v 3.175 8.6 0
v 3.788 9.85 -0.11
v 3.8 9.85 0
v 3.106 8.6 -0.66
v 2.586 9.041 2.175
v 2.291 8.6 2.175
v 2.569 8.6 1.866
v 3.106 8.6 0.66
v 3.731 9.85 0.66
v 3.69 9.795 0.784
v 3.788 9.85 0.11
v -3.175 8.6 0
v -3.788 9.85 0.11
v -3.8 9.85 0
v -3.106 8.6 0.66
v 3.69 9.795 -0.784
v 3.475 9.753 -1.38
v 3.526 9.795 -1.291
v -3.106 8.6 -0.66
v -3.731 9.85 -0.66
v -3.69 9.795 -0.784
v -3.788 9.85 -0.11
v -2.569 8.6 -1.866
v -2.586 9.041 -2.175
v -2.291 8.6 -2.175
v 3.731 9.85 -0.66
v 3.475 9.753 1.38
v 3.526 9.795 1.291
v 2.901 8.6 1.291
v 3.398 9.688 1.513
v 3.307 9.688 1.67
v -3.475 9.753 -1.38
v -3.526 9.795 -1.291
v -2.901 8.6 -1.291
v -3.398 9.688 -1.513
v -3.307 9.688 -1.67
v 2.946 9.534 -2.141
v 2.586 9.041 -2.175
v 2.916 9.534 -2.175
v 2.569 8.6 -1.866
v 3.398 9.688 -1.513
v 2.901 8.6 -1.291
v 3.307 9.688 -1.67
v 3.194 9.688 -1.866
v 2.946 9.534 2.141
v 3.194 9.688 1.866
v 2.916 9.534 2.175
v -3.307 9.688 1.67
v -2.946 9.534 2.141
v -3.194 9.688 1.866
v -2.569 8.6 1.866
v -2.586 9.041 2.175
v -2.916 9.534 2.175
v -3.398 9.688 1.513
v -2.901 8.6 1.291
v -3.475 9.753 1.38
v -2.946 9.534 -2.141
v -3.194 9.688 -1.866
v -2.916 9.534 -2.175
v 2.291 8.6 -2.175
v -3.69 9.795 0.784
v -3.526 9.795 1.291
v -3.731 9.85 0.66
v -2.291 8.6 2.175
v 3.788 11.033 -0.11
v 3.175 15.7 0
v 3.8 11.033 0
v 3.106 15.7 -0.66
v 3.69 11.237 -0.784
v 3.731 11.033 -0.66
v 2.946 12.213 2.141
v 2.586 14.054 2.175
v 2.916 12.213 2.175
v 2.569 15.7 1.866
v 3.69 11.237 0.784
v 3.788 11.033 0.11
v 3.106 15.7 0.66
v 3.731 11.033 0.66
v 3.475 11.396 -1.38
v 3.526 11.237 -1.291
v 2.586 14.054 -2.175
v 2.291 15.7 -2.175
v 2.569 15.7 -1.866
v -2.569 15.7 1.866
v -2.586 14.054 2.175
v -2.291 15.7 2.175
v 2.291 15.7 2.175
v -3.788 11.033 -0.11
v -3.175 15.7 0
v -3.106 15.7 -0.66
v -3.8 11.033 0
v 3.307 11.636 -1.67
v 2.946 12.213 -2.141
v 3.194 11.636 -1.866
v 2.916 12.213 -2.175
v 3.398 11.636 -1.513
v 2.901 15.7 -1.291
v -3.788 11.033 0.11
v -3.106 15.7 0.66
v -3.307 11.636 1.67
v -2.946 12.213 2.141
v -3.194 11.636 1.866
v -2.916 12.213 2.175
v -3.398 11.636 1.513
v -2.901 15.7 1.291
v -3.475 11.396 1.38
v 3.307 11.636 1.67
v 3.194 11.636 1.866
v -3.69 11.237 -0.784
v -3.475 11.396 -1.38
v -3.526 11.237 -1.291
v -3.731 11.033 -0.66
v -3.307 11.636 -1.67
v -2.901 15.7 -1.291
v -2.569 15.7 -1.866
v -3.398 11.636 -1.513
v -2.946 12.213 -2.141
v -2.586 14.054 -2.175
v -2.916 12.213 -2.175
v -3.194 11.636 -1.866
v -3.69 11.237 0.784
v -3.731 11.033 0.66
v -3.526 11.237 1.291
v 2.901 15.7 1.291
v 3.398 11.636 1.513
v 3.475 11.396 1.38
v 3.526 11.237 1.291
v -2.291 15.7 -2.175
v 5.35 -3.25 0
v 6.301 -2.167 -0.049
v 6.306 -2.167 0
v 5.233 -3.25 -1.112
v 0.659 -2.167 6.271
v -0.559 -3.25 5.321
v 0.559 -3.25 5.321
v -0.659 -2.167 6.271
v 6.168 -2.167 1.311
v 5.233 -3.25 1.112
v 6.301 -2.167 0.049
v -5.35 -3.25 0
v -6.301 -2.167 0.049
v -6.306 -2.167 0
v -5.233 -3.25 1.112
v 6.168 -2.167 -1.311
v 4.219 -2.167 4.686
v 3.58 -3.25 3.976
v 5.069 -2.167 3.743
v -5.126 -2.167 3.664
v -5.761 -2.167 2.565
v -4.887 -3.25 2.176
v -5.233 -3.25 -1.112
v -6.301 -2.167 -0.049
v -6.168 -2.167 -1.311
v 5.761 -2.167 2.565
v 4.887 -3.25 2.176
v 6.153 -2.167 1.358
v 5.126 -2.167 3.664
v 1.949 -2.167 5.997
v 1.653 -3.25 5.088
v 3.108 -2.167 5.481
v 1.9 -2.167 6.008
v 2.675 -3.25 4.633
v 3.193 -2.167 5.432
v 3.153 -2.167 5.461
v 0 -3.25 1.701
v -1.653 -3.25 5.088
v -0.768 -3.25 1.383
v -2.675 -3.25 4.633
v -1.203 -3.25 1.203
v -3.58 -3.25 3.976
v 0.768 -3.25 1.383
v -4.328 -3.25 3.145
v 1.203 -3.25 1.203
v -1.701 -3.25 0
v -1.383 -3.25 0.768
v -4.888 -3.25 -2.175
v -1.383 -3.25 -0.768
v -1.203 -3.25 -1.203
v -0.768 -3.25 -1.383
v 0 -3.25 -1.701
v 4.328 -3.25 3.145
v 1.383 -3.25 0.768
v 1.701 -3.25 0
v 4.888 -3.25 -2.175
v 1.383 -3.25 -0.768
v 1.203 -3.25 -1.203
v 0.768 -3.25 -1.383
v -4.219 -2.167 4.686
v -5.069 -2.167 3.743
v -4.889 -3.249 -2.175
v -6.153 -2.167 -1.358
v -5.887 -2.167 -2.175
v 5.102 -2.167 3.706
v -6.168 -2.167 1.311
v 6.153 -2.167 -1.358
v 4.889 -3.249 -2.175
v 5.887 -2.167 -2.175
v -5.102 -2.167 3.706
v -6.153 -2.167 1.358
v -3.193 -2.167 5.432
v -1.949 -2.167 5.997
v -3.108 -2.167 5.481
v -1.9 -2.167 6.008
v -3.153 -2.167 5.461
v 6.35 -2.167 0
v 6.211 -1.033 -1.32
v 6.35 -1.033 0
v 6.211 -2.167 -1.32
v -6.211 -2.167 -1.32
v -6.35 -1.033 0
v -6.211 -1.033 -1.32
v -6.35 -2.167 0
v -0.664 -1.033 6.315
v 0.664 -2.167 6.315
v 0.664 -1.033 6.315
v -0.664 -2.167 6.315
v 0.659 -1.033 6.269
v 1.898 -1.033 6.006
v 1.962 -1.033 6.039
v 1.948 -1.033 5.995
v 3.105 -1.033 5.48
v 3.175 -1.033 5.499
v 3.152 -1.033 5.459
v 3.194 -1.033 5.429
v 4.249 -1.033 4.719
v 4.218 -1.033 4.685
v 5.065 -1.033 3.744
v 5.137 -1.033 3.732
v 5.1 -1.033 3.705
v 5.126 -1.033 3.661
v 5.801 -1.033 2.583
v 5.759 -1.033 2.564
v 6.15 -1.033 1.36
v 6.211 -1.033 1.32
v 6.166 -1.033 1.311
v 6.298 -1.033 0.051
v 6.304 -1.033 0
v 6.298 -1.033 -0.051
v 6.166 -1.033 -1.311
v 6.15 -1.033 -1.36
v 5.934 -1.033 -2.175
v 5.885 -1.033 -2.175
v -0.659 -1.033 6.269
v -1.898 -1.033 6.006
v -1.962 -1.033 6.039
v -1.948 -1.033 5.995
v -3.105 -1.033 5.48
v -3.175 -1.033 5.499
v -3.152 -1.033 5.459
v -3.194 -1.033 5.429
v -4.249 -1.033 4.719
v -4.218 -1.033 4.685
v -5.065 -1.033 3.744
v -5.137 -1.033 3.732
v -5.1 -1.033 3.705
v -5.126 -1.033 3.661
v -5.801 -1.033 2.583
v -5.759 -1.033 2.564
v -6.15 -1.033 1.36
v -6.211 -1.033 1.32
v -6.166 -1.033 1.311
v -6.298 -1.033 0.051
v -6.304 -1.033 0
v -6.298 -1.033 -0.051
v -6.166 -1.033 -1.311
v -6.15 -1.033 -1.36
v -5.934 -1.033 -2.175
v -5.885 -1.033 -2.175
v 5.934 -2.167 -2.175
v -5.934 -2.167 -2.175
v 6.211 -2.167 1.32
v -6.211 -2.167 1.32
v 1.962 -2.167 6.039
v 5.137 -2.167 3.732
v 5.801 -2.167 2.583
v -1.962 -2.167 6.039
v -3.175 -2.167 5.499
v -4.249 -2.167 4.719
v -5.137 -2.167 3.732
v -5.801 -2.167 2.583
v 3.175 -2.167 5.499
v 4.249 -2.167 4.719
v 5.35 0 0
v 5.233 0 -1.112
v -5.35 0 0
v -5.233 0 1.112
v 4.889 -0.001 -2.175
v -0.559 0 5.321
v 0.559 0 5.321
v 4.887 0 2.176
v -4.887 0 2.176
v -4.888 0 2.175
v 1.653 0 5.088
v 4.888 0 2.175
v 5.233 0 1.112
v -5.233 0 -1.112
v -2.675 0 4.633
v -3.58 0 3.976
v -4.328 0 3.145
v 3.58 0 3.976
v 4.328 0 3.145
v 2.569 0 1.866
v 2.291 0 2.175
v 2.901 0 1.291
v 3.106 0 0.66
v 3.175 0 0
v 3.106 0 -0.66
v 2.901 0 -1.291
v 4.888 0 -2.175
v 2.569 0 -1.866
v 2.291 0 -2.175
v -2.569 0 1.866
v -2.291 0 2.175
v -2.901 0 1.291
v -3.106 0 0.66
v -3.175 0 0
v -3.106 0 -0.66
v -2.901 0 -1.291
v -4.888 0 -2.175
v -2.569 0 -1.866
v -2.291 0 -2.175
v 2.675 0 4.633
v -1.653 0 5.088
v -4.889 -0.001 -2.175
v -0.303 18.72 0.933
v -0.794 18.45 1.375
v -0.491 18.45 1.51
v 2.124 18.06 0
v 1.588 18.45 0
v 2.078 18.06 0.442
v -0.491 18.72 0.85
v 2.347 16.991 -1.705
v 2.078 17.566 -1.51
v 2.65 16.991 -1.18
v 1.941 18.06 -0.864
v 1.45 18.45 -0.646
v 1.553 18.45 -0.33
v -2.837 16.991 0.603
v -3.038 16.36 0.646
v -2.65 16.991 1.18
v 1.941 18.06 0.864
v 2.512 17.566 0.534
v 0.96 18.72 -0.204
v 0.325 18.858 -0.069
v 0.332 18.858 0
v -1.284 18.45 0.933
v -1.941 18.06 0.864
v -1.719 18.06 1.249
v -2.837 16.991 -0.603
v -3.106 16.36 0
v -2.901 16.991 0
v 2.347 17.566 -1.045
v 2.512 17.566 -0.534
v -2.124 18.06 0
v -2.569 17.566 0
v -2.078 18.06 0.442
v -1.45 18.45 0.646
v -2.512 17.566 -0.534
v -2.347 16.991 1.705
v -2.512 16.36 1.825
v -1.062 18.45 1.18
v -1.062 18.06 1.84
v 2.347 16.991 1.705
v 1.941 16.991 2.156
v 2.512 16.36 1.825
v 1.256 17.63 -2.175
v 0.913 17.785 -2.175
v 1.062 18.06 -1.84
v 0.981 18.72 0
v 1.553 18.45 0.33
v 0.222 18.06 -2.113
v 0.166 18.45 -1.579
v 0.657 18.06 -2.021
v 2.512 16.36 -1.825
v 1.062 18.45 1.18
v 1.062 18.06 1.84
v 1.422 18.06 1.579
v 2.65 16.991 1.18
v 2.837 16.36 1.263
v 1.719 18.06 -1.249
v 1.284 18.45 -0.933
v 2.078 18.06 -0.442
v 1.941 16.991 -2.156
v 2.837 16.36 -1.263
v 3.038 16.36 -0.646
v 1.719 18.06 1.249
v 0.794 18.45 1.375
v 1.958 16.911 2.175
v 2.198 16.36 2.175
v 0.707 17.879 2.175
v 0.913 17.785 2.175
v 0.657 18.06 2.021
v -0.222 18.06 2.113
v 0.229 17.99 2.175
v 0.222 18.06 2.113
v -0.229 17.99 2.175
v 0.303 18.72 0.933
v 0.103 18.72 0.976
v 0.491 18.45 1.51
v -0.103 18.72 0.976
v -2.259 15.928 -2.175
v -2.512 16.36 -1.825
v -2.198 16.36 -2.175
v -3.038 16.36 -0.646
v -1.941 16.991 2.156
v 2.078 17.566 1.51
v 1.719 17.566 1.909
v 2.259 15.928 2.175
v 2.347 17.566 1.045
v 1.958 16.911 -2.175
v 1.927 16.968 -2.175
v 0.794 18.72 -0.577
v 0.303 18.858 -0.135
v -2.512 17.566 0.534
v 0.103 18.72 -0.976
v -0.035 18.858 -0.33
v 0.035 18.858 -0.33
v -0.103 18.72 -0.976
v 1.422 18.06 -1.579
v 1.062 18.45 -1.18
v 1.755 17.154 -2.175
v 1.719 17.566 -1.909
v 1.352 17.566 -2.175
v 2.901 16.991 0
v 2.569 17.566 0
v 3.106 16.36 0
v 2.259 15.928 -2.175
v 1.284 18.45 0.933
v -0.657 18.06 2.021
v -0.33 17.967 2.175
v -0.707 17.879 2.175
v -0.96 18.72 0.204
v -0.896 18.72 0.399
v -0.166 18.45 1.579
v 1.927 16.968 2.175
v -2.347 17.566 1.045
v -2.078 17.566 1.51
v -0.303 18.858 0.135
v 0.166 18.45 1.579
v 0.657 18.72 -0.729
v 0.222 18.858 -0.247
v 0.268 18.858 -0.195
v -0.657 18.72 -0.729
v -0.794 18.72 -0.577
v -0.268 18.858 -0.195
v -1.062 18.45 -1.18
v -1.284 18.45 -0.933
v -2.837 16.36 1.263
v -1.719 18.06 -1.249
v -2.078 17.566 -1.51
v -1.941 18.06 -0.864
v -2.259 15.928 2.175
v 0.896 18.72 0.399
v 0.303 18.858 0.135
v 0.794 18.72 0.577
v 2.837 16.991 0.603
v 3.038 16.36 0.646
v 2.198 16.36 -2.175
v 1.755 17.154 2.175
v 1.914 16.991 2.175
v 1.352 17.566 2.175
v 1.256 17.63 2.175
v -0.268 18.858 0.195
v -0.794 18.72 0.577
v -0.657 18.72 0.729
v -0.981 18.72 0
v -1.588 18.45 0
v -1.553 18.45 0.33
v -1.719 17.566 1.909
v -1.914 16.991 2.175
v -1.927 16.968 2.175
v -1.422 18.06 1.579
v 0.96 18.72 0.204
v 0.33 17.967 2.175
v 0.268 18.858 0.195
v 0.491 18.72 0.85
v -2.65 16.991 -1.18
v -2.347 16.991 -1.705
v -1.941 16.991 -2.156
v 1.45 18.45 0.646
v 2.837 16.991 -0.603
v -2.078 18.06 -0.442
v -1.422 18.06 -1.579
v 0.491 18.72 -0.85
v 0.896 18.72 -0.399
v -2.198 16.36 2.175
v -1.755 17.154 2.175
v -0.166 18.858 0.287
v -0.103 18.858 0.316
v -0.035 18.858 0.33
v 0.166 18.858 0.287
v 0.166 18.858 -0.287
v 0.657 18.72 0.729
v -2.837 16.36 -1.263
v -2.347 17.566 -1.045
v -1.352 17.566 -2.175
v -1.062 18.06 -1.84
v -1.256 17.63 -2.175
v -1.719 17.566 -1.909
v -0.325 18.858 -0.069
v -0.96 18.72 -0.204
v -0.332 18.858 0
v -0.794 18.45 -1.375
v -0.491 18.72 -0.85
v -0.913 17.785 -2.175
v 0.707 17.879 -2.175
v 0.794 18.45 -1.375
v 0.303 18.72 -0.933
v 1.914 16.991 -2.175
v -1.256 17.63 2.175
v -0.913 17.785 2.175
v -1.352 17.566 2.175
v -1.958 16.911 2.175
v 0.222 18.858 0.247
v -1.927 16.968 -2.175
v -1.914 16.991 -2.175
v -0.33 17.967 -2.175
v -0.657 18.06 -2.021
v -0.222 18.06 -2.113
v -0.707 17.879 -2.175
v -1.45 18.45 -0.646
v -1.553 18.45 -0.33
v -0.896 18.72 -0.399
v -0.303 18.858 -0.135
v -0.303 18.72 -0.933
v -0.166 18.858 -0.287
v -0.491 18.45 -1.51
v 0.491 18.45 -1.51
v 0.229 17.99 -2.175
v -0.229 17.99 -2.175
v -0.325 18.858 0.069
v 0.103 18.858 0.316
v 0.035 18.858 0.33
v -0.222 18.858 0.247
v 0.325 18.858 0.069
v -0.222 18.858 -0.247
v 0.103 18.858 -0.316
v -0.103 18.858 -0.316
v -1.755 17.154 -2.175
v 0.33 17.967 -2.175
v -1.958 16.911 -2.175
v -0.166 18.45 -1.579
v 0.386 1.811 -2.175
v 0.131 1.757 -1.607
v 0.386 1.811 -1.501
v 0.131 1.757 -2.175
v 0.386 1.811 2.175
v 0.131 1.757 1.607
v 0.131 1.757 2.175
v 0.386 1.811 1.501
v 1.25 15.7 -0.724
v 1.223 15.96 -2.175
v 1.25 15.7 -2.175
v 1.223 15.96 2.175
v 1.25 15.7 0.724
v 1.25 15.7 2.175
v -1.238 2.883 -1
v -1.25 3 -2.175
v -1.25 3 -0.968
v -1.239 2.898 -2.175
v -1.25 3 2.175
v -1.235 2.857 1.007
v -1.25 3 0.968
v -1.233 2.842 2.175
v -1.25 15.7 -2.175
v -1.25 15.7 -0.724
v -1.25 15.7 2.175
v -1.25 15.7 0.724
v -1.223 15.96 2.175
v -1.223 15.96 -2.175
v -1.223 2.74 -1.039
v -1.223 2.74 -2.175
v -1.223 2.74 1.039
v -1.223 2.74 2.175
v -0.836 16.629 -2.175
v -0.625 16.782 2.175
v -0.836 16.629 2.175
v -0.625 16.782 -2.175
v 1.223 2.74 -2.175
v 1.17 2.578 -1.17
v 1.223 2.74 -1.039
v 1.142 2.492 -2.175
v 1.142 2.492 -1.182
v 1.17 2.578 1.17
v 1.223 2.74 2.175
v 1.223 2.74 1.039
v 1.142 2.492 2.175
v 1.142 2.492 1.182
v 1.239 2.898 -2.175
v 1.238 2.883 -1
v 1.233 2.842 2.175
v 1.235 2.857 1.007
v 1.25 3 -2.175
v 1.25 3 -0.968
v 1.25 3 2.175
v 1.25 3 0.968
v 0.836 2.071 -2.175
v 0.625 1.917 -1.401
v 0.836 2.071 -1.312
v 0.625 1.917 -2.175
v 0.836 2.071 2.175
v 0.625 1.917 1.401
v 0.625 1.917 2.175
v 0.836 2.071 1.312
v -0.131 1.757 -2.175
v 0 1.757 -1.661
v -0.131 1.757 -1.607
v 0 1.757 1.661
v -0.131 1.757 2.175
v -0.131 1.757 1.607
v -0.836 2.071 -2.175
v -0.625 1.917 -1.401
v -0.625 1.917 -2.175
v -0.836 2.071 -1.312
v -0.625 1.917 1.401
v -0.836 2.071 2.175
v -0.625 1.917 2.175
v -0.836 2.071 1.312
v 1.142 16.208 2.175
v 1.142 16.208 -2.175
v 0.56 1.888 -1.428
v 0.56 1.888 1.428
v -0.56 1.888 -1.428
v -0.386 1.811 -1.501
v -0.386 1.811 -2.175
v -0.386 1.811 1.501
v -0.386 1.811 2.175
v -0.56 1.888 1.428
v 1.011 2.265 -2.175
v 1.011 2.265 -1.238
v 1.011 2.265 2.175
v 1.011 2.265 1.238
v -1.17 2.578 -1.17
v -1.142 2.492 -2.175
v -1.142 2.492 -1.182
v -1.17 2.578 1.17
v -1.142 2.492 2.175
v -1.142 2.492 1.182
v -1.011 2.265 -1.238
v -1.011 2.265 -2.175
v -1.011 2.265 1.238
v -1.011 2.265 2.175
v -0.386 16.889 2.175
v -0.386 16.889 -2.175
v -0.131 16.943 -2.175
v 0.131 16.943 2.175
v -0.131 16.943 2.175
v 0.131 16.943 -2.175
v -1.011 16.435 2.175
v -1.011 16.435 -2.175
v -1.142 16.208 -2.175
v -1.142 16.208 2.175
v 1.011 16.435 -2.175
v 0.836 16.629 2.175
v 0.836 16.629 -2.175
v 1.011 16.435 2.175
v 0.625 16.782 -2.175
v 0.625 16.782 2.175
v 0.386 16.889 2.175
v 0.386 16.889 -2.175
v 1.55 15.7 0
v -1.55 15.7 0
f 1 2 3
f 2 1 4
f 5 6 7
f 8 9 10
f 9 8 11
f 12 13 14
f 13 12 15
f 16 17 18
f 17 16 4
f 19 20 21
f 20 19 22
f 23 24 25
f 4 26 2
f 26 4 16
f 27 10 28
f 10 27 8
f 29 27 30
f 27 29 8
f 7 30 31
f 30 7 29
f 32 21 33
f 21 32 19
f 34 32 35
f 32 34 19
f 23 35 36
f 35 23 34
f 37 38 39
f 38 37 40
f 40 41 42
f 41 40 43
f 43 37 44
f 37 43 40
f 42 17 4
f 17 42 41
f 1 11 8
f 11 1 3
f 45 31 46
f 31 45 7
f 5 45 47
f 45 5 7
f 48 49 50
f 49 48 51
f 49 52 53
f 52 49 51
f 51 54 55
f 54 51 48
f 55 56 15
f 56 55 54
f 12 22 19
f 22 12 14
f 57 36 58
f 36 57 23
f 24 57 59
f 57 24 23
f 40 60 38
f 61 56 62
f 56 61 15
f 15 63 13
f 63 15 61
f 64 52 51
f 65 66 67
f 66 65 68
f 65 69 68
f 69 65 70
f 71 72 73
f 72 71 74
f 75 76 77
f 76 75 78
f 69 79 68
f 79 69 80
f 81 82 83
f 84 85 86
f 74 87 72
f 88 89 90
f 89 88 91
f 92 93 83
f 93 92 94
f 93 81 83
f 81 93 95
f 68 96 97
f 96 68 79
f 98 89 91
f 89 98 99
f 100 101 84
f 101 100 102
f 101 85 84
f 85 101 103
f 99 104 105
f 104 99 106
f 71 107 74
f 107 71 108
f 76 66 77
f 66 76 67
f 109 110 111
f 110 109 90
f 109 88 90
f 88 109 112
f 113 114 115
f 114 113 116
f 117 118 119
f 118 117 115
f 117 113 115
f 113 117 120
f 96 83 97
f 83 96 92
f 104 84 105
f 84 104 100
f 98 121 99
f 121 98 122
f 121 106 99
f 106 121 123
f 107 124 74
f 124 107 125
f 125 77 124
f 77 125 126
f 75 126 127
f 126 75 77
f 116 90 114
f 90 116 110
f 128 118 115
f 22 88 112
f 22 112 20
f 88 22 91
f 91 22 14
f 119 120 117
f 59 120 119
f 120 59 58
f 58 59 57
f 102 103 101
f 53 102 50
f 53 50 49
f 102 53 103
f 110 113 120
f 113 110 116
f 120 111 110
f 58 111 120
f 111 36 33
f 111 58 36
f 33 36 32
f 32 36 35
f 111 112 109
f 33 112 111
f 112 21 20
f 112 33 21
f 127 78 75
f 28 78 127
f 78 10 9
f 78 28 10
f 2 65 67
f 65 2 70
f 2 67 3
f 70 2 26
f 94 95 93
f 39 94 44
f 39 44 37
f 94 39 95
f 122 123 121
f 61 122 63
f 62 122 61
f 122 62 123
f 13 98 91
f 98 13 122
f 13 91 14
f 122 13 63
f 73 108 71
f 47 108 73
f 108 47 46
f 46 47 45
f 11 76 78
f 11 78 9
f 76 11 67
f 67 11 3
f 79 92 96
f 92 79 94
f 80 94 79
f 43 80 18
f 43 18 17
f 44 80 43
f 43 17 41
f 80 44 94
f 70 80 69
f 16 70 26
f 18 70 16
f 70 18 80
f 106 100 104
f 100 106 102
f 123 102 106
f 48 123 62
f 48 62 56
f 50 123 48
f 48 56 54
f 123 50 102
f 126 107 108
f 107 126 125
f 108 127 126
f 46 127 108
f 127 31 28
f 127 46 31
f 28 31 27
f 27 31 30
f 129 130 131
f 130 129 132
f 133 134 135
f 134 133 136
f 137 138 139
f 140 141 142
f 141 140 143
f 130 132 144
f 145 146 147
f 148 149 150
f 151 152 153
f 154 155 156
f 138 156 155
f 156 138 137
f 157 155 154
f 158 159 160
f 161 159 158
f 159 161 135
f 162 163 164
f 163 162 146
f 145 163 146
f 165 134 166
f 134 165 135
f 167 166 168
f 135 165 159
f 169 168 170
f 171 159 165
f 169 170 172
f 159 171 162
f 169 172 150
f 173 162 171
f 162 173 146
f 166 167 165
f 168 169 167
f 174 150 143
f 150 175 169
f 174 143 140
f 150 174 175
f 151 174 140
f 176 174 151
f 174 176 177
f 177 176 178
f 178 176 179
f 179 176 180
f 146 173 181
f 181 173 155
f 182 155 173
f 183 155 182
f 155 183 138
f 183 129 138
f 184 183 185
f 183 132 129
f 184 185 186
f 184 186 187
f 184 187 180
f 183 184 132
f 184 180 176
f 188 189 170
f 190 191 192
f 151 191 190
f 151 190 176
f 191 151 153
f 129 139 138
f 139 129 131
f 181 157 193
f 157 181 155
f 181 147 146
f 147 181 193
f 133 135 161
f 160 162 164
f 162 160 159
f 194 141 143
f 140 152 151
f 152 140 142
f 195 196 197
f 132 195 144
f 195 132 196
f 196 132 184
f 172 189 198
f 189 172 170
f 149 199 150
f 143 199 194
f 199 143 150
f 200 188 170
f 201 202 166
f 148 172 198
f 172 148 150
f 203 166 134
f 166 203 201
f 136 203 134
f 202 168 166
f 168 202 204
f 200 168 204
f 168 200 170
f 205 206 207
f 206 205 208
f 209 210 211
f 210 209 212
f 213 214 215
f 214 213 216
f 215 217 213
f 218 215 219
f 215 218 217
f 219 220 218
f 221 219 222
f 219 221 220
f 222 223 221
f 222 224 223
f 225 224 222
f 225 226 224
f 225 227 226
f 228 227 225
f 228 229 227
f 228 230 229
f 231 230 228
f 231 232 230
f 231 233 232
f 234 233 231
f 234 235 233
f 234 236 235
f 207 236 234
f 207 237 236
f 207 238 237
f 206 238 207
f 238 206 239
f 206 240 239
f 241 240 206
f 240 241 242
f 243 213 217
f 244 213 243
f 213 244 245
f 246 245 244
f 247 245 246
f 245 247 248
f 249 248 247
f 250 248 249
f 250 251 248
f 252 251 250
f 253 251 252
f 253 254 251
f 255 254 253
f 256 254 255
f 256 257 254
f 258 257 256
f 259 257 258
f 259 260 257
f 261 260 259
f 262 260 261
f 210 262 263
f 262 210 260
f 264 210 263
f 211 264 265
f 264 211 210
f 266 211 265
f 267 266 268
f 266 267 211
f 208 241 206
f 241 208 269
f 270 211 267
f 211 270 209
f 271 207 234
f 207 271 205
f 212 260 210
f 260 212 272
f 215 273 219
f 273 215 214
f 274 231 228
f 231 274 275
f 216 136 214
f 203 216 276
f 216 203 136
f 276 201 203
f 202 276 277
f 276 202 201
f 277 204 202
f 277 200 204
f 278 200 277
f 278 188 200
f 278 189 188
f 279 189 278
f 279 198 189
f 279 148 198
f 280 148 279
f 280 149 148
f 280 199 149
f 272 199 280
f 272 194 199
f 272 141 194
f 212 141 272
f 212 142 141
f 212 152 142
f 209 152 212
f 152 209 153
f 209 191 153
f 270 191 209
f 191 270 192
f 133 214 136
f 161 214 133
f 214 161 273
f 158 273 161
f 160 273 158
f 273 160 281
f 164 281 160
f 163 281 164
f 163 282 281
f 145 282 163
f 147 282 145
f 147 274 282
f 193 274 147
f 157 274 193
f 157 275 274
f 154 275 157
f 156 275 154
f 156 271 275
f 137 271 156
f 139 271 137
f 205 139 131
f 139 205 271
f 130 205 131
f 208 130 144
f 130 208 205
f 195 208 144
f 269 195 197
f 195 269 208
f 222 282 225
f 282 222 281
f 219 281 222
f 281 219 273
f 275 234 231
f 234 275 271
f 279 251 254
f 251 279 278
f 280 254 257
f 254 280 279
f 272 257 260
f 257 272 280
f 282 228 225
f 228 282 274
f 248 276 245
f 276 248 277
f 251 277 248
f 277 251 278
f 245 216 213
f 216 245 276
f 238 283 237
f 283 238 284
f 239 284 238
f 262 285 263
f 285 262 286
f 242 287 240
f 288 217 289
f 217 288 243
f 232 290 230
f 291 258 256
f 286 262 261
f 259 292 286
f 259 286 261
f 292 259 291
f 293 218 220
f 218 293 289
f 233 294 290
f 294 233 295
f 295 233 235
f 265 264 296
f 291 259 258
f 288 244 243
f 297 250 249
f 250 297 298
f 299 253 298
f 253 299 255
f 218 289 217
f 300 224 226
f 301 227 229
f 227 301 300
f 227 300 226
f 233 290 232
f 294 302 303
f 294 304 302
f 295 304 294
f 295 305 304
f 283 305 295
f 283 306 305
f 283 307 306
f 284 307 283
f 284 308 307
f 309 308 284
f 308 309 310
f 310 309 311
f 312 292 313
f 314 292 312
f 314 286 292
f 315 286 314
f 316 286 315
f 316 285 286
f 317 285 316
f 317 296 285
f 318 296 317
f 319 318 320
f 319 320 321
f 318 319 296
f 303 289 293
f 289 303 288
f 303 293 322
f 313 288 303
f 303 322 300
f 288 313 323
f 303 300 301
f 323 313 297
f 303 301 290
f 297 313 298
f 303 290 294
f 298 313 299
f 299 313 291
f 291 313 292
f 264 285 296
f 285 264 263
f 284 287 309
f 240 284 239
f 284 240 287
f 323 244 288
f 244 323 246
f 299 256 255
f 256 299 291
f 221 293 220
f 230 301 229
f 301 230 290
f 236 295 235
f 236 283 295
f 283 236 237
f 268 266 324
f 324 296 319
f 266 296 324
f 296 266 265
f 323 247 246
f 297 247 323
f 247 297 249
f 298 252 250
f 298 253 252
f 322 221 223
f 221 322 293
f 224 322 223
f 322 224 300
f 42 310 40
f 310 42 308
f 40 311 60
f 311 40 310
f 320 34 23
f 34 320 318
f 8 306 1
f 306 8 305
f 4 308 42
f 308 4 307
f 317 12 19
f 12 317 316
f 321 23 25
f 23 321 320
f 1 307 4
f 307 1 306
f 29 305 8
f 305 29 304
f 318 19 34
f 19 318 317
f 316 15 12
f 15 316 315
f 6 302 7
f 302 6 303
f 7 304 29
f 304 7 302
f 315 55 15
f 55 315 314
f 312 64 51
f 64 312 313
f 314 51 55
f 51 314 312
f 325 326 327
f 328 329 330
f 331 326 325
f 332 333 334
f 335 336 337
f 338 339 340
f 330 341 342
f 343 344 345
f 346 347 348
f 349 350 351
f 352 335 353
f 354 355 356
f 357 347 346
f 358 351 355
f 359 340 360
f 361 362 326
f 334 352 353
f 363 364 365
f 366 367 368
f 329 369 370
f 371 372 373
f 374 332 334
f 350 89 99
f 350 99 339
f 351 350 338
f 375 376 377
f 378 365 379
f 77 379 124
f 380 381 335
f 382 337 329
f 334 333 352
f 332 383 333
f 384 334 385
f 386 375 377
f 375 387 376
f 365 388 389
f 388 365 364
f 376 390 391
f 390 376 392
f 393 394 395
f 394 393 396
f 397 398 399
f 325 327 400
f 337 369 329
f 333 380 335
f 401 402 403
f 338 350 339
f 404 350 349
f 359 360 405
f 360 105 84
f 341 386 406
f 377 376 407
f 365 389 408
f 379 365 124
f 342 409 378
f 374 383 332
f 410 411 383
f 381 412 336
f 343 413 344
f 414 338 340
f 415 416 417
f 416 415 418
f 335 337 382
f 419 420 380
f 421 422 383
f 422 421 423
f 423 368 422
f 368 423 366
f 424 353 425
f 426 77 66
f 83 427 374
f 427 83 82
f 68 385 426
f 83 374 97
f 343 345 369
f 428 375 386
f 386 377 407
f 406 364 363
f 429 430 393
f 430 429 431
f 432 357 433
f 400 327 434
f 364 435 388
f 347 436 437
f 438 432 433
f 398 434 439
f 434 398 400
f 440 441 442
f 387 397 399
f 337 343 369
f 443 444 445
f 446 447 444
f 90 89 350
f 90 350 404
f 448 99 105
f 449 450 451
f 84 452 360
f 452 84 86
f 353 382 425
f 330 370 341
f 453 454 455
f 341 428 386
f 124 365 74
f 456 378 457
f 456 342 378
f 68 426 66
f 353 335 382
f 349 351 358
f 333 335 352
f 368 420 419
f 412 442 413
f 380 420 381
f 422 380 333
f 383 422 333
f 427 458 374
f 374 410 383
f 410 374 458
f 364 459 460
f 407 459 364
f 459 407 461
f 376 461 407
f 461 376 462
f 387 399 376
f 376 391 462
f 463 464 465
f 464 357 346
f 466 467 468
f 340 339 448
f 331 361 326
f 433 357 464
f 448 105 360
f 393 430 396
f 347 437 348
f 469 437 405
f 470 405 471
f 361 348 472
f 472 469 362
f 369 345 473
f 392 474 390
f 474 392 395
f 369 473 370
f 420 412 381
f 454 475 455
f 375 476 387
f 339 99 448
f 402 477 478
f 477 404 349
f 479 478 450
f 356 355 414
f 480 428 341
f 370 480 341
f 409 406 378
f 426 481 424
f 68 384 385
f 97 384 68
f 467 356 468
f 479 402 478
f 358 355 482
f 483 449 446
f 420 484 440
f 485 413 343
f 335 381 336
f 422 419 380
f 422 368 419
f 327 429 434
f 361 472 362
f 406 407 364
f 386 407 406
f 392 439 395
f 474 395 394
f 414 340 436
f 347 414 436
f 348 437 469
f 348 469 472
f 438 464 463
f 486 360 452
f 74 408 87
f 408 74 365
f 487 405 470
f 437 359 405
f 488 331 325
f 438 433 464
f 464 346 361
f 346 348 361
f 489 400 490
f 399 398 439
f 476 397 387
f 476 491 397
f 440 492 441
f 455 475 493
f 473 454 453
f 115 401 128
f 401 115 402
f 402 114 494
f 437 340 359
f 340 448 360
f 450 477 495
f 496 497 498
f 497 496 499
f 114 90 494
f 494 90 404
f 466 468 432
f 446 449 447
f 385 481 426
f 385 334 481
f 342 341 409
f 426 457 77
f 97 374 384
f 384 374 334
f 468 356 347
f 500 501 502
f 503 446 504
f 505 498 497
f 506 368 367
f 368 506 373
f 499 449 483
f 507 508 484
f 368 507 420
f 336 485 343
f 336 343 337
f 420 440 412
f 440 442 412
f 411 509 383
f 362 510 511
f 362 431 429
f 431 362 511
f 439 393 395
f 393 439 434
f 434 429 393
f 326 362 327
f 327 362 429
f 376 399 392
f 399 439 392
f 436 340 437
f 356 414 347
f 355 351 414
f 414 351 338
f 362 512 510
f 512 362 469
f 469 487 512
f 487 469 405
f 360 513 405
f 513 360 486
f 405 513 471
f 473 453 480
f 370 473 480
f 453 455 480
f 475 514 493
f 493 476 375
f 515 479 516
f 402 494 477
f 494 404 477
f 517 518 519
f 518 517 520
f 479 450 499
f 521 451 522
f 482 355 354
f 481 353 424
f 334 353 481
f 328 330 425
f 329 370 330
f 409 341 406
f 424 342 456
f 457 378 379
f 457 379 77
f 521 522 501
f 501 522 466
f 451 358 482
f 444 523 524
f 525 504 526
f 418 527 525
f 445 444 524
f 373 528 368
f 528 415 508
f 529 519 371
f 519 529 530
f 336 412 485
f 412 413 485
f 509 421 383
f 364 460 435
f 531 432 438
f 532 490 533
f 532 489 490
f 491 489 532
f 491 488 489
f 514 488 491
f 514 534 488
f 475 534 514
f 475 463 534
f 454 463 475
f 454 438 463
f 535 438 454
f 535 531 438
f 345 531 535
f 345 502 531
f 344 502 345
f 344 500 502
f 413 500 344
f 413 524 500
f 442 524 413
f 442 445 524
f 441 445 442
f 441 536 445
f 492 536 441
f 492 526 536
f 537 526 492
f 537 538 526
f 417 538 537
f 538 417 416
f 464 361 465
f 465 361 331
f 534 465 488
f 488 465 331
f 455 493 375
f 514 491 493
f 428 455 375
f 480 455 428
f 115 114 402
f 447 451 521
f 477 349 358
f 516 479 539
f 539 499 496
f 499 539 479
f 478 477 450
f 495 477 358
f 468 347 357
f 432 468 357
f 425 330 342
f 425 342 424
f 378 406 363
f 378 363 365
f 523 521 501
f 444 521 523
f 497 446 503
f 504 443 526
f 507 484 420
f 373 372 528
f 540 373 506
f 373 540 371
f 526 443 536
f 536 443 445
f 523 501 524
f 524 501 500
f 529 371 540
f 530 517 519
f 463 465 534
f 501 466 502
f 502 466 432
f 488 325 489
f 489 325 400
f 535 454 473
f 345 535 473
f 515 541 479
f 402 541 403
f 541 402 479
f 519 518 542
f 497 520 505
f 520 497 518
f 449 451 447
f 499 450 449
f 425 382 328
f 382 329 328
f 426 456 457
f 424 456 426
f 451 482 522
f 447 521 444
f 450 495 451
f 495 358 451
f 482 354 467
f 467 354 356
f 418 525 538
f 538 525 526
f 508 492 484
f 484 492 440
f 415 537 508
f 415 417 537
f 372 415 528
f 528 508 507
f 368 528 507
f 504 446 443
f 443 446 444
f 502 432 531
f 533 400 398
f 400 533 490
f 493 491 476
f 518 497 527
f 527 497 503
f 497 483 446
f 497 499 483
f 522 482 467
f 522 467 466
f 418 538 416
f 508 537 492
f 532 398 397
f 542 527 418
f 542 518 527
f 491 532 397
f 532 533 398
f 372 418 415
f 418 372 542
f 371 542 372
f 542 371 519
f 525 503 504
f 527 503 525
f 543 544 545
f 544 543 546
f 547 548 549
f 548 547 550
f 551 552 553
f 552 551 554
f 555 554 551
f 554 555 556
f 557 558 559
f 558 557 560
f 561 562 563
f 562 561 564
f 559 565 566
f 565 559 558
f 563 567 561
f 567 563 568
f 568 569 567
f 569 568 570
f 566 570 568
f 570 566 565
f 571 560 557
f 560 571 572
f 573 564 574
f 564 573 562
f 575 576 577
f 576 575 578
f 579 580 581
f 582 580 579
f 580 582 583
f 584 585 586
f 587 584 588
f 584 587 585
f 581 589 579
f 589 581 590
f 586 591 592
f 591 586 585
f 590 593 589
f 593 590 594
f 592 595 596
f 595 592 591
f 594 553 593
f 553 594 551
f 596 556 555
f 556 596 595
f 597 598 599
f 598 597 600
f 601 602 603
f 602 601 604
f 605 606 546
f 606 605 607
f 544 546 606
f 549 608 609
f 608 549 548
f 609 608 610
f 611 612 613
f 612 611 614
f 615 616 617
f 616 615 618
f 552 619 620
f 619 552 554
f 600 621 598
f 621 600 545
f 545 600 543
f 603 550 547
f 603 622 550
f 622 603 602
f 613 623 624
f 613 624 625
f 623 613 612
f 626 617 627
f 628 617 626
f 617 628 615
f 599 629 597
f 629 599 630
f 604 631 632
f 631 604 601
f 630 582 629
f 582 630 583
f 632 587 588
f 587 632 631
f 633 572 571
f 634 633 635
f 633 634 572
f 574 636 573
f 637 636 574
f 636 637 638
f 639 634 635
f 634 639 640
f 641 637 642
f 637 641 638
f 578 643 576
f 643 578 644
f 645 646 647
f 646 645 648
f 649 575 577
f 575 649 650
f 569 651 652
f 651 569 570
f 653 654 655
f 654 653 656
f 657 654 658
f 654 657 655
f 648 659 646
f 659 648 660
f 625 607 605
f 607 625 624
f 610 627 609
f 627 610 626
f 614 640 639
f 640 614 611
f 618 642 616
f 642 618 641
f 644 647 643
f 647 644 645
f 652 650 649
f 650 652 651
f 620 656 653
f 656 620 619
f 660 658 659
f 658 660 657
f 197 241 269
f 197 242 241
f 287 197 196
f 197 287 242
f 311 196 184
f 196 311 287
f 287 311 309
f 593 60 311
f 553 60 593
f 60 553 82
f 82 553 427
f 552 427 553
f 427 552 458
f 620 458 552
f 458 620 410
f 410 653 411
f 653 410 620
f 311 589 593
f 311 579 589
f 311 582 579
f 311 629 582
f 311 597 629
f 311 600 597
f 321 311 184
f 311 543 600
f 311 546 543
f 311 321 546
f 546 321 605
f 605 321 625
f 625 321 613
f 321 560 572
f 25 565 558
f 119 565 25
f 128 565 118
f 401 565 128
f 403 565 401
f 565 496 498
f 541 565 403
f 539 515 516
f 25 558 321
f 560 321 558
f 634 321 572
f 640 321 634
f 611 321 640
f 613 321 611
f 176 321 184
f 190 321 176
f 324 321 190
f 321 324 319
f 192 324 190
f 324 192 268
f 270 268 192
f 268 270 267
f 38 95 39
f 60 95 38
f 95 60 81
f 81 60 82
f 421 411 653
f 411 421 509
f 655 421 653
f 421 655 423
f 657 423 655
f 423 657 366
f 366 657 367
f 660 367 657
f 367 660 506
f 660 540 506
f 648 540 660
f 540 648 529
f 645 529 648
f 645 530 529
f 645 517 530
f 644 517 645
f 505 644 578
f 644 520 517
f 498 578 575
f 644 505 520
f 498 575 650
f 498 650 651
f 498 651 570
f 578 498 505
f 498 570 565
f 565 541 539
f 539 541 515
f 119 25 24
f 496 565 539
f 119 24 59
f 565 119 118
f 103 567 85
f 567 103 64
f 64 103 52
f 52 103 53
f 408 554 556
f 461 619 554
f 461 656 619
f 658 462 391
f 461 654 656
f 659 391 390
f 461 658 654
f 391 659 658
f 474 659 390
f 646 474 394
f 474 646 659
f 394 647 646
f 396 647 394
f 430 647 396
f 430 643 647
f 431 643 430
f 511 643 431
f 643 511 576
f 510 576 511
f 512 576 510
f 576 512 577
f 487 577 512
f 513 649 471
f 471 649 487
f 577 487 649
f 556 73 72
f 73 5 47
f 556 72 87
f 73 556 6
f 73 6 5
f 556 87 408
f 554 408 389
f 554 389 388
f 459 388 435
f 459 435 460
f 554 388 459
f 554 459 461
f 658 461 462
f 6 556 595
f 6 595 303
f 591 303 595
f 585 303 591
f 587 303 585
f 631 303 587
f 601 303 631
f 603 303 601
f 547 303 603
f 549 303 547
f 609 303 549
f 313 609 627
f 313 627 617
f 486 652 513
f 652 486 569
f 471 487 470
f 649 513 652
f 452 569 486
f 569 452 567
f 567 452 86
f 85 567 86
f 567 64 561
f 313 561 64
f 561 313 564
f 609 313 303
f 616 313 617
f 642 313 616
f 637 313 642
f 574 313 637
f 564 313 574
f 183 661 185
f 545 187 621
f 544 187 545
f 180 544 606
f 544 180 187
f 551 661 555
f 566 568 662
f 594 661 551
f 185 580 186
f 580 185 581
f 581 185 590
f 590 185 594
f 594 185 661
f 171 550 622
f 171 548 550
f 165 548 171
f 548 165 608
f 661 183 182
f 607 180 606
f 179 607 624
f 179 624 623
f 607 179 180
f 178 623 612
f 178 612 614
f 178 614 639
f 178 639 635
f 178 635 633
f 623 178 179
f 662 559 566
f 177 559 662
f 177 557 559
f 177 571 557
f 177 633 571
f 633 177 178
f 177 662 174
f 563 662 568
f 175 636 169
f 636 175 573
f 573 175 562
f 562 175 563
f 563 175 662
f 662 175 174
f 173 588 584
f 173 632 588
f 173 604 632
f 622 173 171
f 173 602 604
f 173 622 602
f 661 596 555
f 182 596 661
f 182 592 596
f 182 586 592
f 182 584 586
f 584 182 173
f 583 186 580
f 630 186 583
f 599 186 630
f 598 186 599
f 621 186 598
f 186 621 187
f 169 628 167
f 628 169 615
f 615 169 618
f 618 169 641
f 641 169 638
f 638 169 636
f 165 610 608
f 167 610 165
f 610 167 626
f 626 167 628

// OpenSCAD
// file: pins.scad
// Pin Connectors V3
// Tony Buser <tbuser@gmail.com>
// Modified by Emmett Lalish

object=0;//[0:pin,1:pinpeg,2:pinhole]
length=20;
diameter=8;
//Only affects pinhole
hole_twist=0;//[0:free,1:fixed]
//Only affects pinhole
hole_friction=0;//[0:loose,1:tight]
//Radial gap to help pins fit into tight holes
pin_tolerance=0.2;
//Extra gap to make loose hole
loose=0.3;
lip_height=3;
lip_thickness=1;
hf=hole_friction==0 ? false : true;
ht=hole_twist==0 ? false : true;

if(object==0)pin(h=length,r=diameter/2,lh=lip_height,lt=lip_thickness,t=pin_tolerance);
if(object==1)pinpeg(h=length,r=diameter/2,lh=lip_height,lt=lip_thickness,t=pin_tolerance);
if(object==2)pinhole(h=length,r=diameter/2,lh=lip_height,lt=lip_thickness,t=loose,
	tight=hf,fixed=ht);

module test() {
  tolerance = 0.3;
  
  translate([-12, 12, 0]) pinpeg(h=20);
  translate([12, 12, 0]) pintack(h=10);
  
  difference() {
    union() {
      translate([0, -12, 2.5]) cube(size = [59, 20, 5], center = true);
      translate([24, -12, 7.5]) cube(size = [12, 20, 15], center = true);
    }
    translate([-24, -12, 0]) pinhole(h=5, t=tolerance);
    translate([-12, -12, 0]) pinhole(h=5, t=tolerance, tight=false);
    translate([0, -12, 0]) pinhole(h=10, t=tolerance);
    translate([12, -12, 0]) pinhole(h=10, t=tolerance, tight=false);
    translate([24, -12, 15]) rotate([0, 180, 0]) pinhole(h=10, t=tolerance);
  }
}

module pinhole(h=10, r=4, lh=3, lt=1, t=0.3, tight=true, fixed=false) {
  // h = shaft height
  // r = shaft radius
  // lh = lip height
  // lt = lip thickness
  // t = extra tolerance for loose fit
  // tight = set to false if you want a joint that spins easily
  // fixed = set to true so pins can't spin
  
intersection(){
  union() {
	if (tight == true || fixed == true) {
      pin_solid(h, r, lh, lt);
	  translate([0,0,-t/2])cylinder(h=h+t, r=r, $fn=30);
	} else {
	  pin_solid(h, r+t/2, lh, lt);
	  translate([0,0,-t/2])cylinder(h=h+t, r=r+t/2, $fn=30);
	}
    
    
    // widen the entrance hole to make insertion easier
    //translate([0, 0, -0.1]) cylinder(h=lh/3, r2=r, r1=r+(t/2)+(lt/2),$fn=30);
  }
  if (fixed == true) {
	translate([-r*2, -r*0.75, -1])cube([r*4, r*1.5, h+2]);
  }
}}

module pin(h=10, r=4, lh=3, lt=1, t=0.2, side=false) {
  // h = shaft height
  // r = shaft radius
  // lh = lip height
  // lt = lip thickness
  // side = set to true if you want it printed horizontally

  if (side) {
    pin_horizontal(h, r, lh, lt, t);
  } else {
    pin_vertical(h, r, lh, lt, t);
  }
}

module pintack(h=10, r=4, lh=3, lt=1, t=0.2, bh=3, br=8.75) {
  // bh = base_height
  // br = base_radius
  
  union() {
    cylinder(h=bh, r=br);
    translate([0, 0, bh]) pin(h, r, lh, lt, t);
  }
}

module pinpeg(h=20, r=4, lh=3, lt=1, t=0.2) {
  union() {
    translate([0,-0.05, 0]) pin(h/2+0.1, r, lh, lt, t, side=true);
    translate([0,0.05, 0]) rotate([0, 0, 180]) pin(h/2+0.1, r, lh, lt, t, side=true);
  }
}

// just call pin instead, I made this module because it was easier to do the rotation option this way
// since openscad complains of recursion if I did it all in one module
module pin_vertical(h=10, r=4, lh=3, lt=1, t=0.2, cut=false) {
  // h = shaft height
  // r = shaft radius
  // lh = lip height
  // lt = lip thickness

  difference() {
    pin_solid(h, r-t/2, lh, lt);
    
    // center cut
    translate([-lt*3/2, -(r*2+lt*2)/2, h/5+lt*3/2]) cube([lt*3, r*2+lt*2, h]);
    //translate([0, 0, h/4]) cylinder(h=h+lh, r=r/2.5, $fn=20);
    // center curve
    translate([0, 0, h/5+lt*3/2]) rotate([90, 0, 0]) cylinder(h=r*2, r=lt*3/2, center=true, $fn=20);
  
    // side cuts
    if(cut==true){
        translate([-r*2, -r-r*0.75+t/2, -1]) cube([r*4, r, h+2]);
        translate([-r*2, r*0.75-t/2, -1]) cube([r*4, r, h+2]);
    }
  }
}

// call pin with side=true instead of this
module pin_horizontal(h=10, r=4, lh=3, lt=1, t=0.2) {
  // h = shaft height
  // r = shaft radius
  // lh = lip height
  // lt = lip thickness
  translate([0, 0, r*0.75-t/2]) rotate([-90, 0, 0]) pin_vertical(h, r, lh, lt, t);
}

// this is mainly to make the pinhole module easier
module pin_solid(h=10, r=4, lh=3, lt=1) {
  union() {
    // shaft
    cylinder(h=h-lh, r=r, $fn=30);
    // lip
    // translate([0, 0, h-lh]) cylinder(h=lh*0.25, r1=r, r2=r+(lt/2), $fn=30);
    // translate([0, 0, h-lh+lh*0.25]) cylinder(h=lh*0.25, r2=r, r1=r+(lt/2), $fn=30);
    // translate([0, 0, h-lh+lh*0.50]) cylinder(h=lh*0.50, r1=r, r2=r-(lt/2), $fn=30);

    // translate([0, 0, h-lh]) cylinder(h=lh*0.50, r1=r, r2=r+(lt/2), $fn=30);
    // translate([0, 0, h-lh+lh*0.50]) cylinder(h=lh*0.50, r1=r+(lt/2), r2=r-(lt/3), $fn=30);    

    translate([0, 0, h-lh]) cylinder(h=lh*0.25, r1=r, r2=r+(lt/2), $fn=30);
    translate([0, 0, h-lh+lh*0.25]) cylinder(h=lh*0.25, r=r+(lt/2), $fn=30);    
    translate([0, 0, h-lh+lh*0.50]) cylinder(h=lh*0.50, r1=r+(lt/2), r2=r-(lt/2), $fn=30);    

    // translate([0, 0, h-lh]) cylinder(h=lh, r1=r+(lt/2), r2=1, $fn=30);
    // translate([0, 0, h-lh-lt/2]) cylinder(h=lt/2, r1=r, r2=r+(lt/2), $fn=30);
  }
}

module pinshaft(h=10, r=4, t=0.2, side=false){
flip=side ? 1 : 0;
translate(flip*[0,h/2,r*0.75-t/2])rotate(flip*[90,0,0])
intersection(){
	cylinder(h=h, r=r-t/2, $fn=30);
	translate([-r*2, -r*0.75+t/2, -1])cube([r*4, r*1.5-t, h+2]);
}
}
// file: configuration.scad
in = 25.4;

$fn=30;

slop = .2;

//pegboard variables
peg_rad = 1/4*in/2;
peg_sep = 1*in;
peg_thick = 1/4*in;
peg_cap_rad = .25*in;

wall=3;

//used for the ball return
dowel_rad = (3/8)/2*in;
dowel_sep = 16-2;
dowel_holder_height = 20;
rear_gap = 1.25*in;

//ball variables
ball_rad = 5/8*in/2;

//track_rad = ball_rad+1+.5;  //this is the minimum size, I think
track_rad = in/2-wall; //this makes the track an inch wide

//inlet variables
inlet_x = in;
inlet_y = in*2;
inlet_z = in*1;
INLET_HOLE = 1;
INLET_SLOT = 2;
INLET_NONE=0;
NONE = 0;
NORMAL = 0;
REVERSE = 5;
SWITCH = 8;
FLIP_FLOP = 9;
CENTER = 4;

PEG_PIN = 1;
PEG_HOOK = 2;
PEG_LOWER_HOOK = 3;
PEG_NONE = 0;

m3_rad = 3/2 + slop;
m3_cap_rad = 6/2 + slop;
m3_nut_rad = 6.6/2;


m5_nut_rad = 8.79/2;
m5_sq_nut_rad = (8*sqrt(2)+slop/2)/2;
m5_nut_rad_laser = 8.79/2-.445;
m5_nut_height = 4.7;
m5_rad = 5/2+slop;
m5_rad_laser = 5/2-.1;
m5_cap_rad = 10/2+slop;
m5_cap_height = 3;
m5_washer_rad = 11/2+slop;

//pin variables
pin_tolerance = .25;
pin_rad = 4;
pin_lt = 1;

//motor shaft variables
motor_dflat=.9;
motor_shaft=7+slop/4;
motor_bump=1.5;
// main file
include<configuration.scad>
use <pins.scad>
use <base.scad>

part = 0;

//laid out for printing
if(part == 0)   //peg
    rotate([-90,0,0]) push_peg();

if(part == 1)  //peg lock
    rotate([-90,0,0]) push_peg_handle();

cap_rad = .25*in;
cap_height = 3.25;
nub_height = .75; //increase for more lock; max=
nub_length = 1.5; //increase to make the pegs easier to remove
nub_inset = nub_length/2;
gap_rad = (nub_height*2+1)/2;

lock_rad = m3_rad+.1;

peg_flat = 1;

echo(peg_rad);
echo(lock_rad);

//better equation for peg_flat
//translate([0,0,0]) cube([3*peg_rad,peg_rad*sqrt(2)-2*gap,2*peg_thick*2+3*peg_rad],center=true);

module push_peg_handle(){
    handle_length = 13;
    handle_rad = peg_rad*1.5;
    
    difference(){
        union(){
            push_peg();
            
            //easy pull handle
            minkowski(){
                hull(){
                    translate([0,0,-handle_length]) scale([1,1,.25]) sphere(r=handle_rad);
                    translate([0,0,-1]) cylinder(r=peg_rad, h=1);
                }
            }
        }
        
        //flatten the bottom again
        translate([0,25+peg_rad-peg_flat,0]) cube([50,50,50], center=true);
    }
}

module push_peg(){
    peg_length = peg_thick*2+wall;
    nub_start = peg_thick+wall-nub_inset;
    
    difference(){
        union(){
            //cap
            translate([0,0,-cap_height]) cylinder(r2=cap_rad, r1=cap_rad-1, h=cap_height/3+.05);
            translate([0,0,-cap_height*2/3]) cylinder(r=cap_rad, h=cap_height/3+.05);
            translate([0,0,-cap_height*1/3]) cylinder(r1=cap_rad, r2=cap_rad-1, h=cap_height/3);
            
            
            //peg
            cylinder(r=peg_rad, h=peg_length);
            translate([0,0,peg_length]) sphere(r=peg_rad);
            
            //nub
            intersection(){
                union(){
                    translate([0,0,nub_start]) cylinder(r1=peg_rad, r2=peg_rad+nub_height, h=nub_length);
                    translate([0,0,nub_start+nub_length]) cylinder(r2=peg_rad, r1=peg_rad+nub_height, h=peg_length-nub_start-nub_length);
                }
                
                //this ensures that the tips of the nub can go through the hole when compressed.
                hull(){
                    for(i=[0,1]) mirror([i,0,0]) translate([gap_rad*.5,0,0]) cylinder(r=peg_rad, h=peg_length);
                }
            }
        }
        
        //center hollow for pinching
        hull(){
            translate([0,0,wall]) rotate([90,0,0]) cylinder(r=gap_rad, h=20, center=true);
            translate([0,0,peg_length]) rotate([90,0,0]) cylinder(r=gap_rad, h=20, center=true);
        }
        
        //flatten the bottom for easy printing
        translate([0,25+peg_rad-peg_flat,0]) cube([50,50,50], center=true);
        
        //and the top so it'll fit in the hole - but leave the cap
        translate([0,-1*(25+peg_rad-peg_flat),25]) cube([50,50,50], center=true);
        
        //hole for a locking peg
        cylinder(r1=lock_rad, r2=lock_rad-.25, h=peg_length*2, center=true, $fn=8);
    }
}
